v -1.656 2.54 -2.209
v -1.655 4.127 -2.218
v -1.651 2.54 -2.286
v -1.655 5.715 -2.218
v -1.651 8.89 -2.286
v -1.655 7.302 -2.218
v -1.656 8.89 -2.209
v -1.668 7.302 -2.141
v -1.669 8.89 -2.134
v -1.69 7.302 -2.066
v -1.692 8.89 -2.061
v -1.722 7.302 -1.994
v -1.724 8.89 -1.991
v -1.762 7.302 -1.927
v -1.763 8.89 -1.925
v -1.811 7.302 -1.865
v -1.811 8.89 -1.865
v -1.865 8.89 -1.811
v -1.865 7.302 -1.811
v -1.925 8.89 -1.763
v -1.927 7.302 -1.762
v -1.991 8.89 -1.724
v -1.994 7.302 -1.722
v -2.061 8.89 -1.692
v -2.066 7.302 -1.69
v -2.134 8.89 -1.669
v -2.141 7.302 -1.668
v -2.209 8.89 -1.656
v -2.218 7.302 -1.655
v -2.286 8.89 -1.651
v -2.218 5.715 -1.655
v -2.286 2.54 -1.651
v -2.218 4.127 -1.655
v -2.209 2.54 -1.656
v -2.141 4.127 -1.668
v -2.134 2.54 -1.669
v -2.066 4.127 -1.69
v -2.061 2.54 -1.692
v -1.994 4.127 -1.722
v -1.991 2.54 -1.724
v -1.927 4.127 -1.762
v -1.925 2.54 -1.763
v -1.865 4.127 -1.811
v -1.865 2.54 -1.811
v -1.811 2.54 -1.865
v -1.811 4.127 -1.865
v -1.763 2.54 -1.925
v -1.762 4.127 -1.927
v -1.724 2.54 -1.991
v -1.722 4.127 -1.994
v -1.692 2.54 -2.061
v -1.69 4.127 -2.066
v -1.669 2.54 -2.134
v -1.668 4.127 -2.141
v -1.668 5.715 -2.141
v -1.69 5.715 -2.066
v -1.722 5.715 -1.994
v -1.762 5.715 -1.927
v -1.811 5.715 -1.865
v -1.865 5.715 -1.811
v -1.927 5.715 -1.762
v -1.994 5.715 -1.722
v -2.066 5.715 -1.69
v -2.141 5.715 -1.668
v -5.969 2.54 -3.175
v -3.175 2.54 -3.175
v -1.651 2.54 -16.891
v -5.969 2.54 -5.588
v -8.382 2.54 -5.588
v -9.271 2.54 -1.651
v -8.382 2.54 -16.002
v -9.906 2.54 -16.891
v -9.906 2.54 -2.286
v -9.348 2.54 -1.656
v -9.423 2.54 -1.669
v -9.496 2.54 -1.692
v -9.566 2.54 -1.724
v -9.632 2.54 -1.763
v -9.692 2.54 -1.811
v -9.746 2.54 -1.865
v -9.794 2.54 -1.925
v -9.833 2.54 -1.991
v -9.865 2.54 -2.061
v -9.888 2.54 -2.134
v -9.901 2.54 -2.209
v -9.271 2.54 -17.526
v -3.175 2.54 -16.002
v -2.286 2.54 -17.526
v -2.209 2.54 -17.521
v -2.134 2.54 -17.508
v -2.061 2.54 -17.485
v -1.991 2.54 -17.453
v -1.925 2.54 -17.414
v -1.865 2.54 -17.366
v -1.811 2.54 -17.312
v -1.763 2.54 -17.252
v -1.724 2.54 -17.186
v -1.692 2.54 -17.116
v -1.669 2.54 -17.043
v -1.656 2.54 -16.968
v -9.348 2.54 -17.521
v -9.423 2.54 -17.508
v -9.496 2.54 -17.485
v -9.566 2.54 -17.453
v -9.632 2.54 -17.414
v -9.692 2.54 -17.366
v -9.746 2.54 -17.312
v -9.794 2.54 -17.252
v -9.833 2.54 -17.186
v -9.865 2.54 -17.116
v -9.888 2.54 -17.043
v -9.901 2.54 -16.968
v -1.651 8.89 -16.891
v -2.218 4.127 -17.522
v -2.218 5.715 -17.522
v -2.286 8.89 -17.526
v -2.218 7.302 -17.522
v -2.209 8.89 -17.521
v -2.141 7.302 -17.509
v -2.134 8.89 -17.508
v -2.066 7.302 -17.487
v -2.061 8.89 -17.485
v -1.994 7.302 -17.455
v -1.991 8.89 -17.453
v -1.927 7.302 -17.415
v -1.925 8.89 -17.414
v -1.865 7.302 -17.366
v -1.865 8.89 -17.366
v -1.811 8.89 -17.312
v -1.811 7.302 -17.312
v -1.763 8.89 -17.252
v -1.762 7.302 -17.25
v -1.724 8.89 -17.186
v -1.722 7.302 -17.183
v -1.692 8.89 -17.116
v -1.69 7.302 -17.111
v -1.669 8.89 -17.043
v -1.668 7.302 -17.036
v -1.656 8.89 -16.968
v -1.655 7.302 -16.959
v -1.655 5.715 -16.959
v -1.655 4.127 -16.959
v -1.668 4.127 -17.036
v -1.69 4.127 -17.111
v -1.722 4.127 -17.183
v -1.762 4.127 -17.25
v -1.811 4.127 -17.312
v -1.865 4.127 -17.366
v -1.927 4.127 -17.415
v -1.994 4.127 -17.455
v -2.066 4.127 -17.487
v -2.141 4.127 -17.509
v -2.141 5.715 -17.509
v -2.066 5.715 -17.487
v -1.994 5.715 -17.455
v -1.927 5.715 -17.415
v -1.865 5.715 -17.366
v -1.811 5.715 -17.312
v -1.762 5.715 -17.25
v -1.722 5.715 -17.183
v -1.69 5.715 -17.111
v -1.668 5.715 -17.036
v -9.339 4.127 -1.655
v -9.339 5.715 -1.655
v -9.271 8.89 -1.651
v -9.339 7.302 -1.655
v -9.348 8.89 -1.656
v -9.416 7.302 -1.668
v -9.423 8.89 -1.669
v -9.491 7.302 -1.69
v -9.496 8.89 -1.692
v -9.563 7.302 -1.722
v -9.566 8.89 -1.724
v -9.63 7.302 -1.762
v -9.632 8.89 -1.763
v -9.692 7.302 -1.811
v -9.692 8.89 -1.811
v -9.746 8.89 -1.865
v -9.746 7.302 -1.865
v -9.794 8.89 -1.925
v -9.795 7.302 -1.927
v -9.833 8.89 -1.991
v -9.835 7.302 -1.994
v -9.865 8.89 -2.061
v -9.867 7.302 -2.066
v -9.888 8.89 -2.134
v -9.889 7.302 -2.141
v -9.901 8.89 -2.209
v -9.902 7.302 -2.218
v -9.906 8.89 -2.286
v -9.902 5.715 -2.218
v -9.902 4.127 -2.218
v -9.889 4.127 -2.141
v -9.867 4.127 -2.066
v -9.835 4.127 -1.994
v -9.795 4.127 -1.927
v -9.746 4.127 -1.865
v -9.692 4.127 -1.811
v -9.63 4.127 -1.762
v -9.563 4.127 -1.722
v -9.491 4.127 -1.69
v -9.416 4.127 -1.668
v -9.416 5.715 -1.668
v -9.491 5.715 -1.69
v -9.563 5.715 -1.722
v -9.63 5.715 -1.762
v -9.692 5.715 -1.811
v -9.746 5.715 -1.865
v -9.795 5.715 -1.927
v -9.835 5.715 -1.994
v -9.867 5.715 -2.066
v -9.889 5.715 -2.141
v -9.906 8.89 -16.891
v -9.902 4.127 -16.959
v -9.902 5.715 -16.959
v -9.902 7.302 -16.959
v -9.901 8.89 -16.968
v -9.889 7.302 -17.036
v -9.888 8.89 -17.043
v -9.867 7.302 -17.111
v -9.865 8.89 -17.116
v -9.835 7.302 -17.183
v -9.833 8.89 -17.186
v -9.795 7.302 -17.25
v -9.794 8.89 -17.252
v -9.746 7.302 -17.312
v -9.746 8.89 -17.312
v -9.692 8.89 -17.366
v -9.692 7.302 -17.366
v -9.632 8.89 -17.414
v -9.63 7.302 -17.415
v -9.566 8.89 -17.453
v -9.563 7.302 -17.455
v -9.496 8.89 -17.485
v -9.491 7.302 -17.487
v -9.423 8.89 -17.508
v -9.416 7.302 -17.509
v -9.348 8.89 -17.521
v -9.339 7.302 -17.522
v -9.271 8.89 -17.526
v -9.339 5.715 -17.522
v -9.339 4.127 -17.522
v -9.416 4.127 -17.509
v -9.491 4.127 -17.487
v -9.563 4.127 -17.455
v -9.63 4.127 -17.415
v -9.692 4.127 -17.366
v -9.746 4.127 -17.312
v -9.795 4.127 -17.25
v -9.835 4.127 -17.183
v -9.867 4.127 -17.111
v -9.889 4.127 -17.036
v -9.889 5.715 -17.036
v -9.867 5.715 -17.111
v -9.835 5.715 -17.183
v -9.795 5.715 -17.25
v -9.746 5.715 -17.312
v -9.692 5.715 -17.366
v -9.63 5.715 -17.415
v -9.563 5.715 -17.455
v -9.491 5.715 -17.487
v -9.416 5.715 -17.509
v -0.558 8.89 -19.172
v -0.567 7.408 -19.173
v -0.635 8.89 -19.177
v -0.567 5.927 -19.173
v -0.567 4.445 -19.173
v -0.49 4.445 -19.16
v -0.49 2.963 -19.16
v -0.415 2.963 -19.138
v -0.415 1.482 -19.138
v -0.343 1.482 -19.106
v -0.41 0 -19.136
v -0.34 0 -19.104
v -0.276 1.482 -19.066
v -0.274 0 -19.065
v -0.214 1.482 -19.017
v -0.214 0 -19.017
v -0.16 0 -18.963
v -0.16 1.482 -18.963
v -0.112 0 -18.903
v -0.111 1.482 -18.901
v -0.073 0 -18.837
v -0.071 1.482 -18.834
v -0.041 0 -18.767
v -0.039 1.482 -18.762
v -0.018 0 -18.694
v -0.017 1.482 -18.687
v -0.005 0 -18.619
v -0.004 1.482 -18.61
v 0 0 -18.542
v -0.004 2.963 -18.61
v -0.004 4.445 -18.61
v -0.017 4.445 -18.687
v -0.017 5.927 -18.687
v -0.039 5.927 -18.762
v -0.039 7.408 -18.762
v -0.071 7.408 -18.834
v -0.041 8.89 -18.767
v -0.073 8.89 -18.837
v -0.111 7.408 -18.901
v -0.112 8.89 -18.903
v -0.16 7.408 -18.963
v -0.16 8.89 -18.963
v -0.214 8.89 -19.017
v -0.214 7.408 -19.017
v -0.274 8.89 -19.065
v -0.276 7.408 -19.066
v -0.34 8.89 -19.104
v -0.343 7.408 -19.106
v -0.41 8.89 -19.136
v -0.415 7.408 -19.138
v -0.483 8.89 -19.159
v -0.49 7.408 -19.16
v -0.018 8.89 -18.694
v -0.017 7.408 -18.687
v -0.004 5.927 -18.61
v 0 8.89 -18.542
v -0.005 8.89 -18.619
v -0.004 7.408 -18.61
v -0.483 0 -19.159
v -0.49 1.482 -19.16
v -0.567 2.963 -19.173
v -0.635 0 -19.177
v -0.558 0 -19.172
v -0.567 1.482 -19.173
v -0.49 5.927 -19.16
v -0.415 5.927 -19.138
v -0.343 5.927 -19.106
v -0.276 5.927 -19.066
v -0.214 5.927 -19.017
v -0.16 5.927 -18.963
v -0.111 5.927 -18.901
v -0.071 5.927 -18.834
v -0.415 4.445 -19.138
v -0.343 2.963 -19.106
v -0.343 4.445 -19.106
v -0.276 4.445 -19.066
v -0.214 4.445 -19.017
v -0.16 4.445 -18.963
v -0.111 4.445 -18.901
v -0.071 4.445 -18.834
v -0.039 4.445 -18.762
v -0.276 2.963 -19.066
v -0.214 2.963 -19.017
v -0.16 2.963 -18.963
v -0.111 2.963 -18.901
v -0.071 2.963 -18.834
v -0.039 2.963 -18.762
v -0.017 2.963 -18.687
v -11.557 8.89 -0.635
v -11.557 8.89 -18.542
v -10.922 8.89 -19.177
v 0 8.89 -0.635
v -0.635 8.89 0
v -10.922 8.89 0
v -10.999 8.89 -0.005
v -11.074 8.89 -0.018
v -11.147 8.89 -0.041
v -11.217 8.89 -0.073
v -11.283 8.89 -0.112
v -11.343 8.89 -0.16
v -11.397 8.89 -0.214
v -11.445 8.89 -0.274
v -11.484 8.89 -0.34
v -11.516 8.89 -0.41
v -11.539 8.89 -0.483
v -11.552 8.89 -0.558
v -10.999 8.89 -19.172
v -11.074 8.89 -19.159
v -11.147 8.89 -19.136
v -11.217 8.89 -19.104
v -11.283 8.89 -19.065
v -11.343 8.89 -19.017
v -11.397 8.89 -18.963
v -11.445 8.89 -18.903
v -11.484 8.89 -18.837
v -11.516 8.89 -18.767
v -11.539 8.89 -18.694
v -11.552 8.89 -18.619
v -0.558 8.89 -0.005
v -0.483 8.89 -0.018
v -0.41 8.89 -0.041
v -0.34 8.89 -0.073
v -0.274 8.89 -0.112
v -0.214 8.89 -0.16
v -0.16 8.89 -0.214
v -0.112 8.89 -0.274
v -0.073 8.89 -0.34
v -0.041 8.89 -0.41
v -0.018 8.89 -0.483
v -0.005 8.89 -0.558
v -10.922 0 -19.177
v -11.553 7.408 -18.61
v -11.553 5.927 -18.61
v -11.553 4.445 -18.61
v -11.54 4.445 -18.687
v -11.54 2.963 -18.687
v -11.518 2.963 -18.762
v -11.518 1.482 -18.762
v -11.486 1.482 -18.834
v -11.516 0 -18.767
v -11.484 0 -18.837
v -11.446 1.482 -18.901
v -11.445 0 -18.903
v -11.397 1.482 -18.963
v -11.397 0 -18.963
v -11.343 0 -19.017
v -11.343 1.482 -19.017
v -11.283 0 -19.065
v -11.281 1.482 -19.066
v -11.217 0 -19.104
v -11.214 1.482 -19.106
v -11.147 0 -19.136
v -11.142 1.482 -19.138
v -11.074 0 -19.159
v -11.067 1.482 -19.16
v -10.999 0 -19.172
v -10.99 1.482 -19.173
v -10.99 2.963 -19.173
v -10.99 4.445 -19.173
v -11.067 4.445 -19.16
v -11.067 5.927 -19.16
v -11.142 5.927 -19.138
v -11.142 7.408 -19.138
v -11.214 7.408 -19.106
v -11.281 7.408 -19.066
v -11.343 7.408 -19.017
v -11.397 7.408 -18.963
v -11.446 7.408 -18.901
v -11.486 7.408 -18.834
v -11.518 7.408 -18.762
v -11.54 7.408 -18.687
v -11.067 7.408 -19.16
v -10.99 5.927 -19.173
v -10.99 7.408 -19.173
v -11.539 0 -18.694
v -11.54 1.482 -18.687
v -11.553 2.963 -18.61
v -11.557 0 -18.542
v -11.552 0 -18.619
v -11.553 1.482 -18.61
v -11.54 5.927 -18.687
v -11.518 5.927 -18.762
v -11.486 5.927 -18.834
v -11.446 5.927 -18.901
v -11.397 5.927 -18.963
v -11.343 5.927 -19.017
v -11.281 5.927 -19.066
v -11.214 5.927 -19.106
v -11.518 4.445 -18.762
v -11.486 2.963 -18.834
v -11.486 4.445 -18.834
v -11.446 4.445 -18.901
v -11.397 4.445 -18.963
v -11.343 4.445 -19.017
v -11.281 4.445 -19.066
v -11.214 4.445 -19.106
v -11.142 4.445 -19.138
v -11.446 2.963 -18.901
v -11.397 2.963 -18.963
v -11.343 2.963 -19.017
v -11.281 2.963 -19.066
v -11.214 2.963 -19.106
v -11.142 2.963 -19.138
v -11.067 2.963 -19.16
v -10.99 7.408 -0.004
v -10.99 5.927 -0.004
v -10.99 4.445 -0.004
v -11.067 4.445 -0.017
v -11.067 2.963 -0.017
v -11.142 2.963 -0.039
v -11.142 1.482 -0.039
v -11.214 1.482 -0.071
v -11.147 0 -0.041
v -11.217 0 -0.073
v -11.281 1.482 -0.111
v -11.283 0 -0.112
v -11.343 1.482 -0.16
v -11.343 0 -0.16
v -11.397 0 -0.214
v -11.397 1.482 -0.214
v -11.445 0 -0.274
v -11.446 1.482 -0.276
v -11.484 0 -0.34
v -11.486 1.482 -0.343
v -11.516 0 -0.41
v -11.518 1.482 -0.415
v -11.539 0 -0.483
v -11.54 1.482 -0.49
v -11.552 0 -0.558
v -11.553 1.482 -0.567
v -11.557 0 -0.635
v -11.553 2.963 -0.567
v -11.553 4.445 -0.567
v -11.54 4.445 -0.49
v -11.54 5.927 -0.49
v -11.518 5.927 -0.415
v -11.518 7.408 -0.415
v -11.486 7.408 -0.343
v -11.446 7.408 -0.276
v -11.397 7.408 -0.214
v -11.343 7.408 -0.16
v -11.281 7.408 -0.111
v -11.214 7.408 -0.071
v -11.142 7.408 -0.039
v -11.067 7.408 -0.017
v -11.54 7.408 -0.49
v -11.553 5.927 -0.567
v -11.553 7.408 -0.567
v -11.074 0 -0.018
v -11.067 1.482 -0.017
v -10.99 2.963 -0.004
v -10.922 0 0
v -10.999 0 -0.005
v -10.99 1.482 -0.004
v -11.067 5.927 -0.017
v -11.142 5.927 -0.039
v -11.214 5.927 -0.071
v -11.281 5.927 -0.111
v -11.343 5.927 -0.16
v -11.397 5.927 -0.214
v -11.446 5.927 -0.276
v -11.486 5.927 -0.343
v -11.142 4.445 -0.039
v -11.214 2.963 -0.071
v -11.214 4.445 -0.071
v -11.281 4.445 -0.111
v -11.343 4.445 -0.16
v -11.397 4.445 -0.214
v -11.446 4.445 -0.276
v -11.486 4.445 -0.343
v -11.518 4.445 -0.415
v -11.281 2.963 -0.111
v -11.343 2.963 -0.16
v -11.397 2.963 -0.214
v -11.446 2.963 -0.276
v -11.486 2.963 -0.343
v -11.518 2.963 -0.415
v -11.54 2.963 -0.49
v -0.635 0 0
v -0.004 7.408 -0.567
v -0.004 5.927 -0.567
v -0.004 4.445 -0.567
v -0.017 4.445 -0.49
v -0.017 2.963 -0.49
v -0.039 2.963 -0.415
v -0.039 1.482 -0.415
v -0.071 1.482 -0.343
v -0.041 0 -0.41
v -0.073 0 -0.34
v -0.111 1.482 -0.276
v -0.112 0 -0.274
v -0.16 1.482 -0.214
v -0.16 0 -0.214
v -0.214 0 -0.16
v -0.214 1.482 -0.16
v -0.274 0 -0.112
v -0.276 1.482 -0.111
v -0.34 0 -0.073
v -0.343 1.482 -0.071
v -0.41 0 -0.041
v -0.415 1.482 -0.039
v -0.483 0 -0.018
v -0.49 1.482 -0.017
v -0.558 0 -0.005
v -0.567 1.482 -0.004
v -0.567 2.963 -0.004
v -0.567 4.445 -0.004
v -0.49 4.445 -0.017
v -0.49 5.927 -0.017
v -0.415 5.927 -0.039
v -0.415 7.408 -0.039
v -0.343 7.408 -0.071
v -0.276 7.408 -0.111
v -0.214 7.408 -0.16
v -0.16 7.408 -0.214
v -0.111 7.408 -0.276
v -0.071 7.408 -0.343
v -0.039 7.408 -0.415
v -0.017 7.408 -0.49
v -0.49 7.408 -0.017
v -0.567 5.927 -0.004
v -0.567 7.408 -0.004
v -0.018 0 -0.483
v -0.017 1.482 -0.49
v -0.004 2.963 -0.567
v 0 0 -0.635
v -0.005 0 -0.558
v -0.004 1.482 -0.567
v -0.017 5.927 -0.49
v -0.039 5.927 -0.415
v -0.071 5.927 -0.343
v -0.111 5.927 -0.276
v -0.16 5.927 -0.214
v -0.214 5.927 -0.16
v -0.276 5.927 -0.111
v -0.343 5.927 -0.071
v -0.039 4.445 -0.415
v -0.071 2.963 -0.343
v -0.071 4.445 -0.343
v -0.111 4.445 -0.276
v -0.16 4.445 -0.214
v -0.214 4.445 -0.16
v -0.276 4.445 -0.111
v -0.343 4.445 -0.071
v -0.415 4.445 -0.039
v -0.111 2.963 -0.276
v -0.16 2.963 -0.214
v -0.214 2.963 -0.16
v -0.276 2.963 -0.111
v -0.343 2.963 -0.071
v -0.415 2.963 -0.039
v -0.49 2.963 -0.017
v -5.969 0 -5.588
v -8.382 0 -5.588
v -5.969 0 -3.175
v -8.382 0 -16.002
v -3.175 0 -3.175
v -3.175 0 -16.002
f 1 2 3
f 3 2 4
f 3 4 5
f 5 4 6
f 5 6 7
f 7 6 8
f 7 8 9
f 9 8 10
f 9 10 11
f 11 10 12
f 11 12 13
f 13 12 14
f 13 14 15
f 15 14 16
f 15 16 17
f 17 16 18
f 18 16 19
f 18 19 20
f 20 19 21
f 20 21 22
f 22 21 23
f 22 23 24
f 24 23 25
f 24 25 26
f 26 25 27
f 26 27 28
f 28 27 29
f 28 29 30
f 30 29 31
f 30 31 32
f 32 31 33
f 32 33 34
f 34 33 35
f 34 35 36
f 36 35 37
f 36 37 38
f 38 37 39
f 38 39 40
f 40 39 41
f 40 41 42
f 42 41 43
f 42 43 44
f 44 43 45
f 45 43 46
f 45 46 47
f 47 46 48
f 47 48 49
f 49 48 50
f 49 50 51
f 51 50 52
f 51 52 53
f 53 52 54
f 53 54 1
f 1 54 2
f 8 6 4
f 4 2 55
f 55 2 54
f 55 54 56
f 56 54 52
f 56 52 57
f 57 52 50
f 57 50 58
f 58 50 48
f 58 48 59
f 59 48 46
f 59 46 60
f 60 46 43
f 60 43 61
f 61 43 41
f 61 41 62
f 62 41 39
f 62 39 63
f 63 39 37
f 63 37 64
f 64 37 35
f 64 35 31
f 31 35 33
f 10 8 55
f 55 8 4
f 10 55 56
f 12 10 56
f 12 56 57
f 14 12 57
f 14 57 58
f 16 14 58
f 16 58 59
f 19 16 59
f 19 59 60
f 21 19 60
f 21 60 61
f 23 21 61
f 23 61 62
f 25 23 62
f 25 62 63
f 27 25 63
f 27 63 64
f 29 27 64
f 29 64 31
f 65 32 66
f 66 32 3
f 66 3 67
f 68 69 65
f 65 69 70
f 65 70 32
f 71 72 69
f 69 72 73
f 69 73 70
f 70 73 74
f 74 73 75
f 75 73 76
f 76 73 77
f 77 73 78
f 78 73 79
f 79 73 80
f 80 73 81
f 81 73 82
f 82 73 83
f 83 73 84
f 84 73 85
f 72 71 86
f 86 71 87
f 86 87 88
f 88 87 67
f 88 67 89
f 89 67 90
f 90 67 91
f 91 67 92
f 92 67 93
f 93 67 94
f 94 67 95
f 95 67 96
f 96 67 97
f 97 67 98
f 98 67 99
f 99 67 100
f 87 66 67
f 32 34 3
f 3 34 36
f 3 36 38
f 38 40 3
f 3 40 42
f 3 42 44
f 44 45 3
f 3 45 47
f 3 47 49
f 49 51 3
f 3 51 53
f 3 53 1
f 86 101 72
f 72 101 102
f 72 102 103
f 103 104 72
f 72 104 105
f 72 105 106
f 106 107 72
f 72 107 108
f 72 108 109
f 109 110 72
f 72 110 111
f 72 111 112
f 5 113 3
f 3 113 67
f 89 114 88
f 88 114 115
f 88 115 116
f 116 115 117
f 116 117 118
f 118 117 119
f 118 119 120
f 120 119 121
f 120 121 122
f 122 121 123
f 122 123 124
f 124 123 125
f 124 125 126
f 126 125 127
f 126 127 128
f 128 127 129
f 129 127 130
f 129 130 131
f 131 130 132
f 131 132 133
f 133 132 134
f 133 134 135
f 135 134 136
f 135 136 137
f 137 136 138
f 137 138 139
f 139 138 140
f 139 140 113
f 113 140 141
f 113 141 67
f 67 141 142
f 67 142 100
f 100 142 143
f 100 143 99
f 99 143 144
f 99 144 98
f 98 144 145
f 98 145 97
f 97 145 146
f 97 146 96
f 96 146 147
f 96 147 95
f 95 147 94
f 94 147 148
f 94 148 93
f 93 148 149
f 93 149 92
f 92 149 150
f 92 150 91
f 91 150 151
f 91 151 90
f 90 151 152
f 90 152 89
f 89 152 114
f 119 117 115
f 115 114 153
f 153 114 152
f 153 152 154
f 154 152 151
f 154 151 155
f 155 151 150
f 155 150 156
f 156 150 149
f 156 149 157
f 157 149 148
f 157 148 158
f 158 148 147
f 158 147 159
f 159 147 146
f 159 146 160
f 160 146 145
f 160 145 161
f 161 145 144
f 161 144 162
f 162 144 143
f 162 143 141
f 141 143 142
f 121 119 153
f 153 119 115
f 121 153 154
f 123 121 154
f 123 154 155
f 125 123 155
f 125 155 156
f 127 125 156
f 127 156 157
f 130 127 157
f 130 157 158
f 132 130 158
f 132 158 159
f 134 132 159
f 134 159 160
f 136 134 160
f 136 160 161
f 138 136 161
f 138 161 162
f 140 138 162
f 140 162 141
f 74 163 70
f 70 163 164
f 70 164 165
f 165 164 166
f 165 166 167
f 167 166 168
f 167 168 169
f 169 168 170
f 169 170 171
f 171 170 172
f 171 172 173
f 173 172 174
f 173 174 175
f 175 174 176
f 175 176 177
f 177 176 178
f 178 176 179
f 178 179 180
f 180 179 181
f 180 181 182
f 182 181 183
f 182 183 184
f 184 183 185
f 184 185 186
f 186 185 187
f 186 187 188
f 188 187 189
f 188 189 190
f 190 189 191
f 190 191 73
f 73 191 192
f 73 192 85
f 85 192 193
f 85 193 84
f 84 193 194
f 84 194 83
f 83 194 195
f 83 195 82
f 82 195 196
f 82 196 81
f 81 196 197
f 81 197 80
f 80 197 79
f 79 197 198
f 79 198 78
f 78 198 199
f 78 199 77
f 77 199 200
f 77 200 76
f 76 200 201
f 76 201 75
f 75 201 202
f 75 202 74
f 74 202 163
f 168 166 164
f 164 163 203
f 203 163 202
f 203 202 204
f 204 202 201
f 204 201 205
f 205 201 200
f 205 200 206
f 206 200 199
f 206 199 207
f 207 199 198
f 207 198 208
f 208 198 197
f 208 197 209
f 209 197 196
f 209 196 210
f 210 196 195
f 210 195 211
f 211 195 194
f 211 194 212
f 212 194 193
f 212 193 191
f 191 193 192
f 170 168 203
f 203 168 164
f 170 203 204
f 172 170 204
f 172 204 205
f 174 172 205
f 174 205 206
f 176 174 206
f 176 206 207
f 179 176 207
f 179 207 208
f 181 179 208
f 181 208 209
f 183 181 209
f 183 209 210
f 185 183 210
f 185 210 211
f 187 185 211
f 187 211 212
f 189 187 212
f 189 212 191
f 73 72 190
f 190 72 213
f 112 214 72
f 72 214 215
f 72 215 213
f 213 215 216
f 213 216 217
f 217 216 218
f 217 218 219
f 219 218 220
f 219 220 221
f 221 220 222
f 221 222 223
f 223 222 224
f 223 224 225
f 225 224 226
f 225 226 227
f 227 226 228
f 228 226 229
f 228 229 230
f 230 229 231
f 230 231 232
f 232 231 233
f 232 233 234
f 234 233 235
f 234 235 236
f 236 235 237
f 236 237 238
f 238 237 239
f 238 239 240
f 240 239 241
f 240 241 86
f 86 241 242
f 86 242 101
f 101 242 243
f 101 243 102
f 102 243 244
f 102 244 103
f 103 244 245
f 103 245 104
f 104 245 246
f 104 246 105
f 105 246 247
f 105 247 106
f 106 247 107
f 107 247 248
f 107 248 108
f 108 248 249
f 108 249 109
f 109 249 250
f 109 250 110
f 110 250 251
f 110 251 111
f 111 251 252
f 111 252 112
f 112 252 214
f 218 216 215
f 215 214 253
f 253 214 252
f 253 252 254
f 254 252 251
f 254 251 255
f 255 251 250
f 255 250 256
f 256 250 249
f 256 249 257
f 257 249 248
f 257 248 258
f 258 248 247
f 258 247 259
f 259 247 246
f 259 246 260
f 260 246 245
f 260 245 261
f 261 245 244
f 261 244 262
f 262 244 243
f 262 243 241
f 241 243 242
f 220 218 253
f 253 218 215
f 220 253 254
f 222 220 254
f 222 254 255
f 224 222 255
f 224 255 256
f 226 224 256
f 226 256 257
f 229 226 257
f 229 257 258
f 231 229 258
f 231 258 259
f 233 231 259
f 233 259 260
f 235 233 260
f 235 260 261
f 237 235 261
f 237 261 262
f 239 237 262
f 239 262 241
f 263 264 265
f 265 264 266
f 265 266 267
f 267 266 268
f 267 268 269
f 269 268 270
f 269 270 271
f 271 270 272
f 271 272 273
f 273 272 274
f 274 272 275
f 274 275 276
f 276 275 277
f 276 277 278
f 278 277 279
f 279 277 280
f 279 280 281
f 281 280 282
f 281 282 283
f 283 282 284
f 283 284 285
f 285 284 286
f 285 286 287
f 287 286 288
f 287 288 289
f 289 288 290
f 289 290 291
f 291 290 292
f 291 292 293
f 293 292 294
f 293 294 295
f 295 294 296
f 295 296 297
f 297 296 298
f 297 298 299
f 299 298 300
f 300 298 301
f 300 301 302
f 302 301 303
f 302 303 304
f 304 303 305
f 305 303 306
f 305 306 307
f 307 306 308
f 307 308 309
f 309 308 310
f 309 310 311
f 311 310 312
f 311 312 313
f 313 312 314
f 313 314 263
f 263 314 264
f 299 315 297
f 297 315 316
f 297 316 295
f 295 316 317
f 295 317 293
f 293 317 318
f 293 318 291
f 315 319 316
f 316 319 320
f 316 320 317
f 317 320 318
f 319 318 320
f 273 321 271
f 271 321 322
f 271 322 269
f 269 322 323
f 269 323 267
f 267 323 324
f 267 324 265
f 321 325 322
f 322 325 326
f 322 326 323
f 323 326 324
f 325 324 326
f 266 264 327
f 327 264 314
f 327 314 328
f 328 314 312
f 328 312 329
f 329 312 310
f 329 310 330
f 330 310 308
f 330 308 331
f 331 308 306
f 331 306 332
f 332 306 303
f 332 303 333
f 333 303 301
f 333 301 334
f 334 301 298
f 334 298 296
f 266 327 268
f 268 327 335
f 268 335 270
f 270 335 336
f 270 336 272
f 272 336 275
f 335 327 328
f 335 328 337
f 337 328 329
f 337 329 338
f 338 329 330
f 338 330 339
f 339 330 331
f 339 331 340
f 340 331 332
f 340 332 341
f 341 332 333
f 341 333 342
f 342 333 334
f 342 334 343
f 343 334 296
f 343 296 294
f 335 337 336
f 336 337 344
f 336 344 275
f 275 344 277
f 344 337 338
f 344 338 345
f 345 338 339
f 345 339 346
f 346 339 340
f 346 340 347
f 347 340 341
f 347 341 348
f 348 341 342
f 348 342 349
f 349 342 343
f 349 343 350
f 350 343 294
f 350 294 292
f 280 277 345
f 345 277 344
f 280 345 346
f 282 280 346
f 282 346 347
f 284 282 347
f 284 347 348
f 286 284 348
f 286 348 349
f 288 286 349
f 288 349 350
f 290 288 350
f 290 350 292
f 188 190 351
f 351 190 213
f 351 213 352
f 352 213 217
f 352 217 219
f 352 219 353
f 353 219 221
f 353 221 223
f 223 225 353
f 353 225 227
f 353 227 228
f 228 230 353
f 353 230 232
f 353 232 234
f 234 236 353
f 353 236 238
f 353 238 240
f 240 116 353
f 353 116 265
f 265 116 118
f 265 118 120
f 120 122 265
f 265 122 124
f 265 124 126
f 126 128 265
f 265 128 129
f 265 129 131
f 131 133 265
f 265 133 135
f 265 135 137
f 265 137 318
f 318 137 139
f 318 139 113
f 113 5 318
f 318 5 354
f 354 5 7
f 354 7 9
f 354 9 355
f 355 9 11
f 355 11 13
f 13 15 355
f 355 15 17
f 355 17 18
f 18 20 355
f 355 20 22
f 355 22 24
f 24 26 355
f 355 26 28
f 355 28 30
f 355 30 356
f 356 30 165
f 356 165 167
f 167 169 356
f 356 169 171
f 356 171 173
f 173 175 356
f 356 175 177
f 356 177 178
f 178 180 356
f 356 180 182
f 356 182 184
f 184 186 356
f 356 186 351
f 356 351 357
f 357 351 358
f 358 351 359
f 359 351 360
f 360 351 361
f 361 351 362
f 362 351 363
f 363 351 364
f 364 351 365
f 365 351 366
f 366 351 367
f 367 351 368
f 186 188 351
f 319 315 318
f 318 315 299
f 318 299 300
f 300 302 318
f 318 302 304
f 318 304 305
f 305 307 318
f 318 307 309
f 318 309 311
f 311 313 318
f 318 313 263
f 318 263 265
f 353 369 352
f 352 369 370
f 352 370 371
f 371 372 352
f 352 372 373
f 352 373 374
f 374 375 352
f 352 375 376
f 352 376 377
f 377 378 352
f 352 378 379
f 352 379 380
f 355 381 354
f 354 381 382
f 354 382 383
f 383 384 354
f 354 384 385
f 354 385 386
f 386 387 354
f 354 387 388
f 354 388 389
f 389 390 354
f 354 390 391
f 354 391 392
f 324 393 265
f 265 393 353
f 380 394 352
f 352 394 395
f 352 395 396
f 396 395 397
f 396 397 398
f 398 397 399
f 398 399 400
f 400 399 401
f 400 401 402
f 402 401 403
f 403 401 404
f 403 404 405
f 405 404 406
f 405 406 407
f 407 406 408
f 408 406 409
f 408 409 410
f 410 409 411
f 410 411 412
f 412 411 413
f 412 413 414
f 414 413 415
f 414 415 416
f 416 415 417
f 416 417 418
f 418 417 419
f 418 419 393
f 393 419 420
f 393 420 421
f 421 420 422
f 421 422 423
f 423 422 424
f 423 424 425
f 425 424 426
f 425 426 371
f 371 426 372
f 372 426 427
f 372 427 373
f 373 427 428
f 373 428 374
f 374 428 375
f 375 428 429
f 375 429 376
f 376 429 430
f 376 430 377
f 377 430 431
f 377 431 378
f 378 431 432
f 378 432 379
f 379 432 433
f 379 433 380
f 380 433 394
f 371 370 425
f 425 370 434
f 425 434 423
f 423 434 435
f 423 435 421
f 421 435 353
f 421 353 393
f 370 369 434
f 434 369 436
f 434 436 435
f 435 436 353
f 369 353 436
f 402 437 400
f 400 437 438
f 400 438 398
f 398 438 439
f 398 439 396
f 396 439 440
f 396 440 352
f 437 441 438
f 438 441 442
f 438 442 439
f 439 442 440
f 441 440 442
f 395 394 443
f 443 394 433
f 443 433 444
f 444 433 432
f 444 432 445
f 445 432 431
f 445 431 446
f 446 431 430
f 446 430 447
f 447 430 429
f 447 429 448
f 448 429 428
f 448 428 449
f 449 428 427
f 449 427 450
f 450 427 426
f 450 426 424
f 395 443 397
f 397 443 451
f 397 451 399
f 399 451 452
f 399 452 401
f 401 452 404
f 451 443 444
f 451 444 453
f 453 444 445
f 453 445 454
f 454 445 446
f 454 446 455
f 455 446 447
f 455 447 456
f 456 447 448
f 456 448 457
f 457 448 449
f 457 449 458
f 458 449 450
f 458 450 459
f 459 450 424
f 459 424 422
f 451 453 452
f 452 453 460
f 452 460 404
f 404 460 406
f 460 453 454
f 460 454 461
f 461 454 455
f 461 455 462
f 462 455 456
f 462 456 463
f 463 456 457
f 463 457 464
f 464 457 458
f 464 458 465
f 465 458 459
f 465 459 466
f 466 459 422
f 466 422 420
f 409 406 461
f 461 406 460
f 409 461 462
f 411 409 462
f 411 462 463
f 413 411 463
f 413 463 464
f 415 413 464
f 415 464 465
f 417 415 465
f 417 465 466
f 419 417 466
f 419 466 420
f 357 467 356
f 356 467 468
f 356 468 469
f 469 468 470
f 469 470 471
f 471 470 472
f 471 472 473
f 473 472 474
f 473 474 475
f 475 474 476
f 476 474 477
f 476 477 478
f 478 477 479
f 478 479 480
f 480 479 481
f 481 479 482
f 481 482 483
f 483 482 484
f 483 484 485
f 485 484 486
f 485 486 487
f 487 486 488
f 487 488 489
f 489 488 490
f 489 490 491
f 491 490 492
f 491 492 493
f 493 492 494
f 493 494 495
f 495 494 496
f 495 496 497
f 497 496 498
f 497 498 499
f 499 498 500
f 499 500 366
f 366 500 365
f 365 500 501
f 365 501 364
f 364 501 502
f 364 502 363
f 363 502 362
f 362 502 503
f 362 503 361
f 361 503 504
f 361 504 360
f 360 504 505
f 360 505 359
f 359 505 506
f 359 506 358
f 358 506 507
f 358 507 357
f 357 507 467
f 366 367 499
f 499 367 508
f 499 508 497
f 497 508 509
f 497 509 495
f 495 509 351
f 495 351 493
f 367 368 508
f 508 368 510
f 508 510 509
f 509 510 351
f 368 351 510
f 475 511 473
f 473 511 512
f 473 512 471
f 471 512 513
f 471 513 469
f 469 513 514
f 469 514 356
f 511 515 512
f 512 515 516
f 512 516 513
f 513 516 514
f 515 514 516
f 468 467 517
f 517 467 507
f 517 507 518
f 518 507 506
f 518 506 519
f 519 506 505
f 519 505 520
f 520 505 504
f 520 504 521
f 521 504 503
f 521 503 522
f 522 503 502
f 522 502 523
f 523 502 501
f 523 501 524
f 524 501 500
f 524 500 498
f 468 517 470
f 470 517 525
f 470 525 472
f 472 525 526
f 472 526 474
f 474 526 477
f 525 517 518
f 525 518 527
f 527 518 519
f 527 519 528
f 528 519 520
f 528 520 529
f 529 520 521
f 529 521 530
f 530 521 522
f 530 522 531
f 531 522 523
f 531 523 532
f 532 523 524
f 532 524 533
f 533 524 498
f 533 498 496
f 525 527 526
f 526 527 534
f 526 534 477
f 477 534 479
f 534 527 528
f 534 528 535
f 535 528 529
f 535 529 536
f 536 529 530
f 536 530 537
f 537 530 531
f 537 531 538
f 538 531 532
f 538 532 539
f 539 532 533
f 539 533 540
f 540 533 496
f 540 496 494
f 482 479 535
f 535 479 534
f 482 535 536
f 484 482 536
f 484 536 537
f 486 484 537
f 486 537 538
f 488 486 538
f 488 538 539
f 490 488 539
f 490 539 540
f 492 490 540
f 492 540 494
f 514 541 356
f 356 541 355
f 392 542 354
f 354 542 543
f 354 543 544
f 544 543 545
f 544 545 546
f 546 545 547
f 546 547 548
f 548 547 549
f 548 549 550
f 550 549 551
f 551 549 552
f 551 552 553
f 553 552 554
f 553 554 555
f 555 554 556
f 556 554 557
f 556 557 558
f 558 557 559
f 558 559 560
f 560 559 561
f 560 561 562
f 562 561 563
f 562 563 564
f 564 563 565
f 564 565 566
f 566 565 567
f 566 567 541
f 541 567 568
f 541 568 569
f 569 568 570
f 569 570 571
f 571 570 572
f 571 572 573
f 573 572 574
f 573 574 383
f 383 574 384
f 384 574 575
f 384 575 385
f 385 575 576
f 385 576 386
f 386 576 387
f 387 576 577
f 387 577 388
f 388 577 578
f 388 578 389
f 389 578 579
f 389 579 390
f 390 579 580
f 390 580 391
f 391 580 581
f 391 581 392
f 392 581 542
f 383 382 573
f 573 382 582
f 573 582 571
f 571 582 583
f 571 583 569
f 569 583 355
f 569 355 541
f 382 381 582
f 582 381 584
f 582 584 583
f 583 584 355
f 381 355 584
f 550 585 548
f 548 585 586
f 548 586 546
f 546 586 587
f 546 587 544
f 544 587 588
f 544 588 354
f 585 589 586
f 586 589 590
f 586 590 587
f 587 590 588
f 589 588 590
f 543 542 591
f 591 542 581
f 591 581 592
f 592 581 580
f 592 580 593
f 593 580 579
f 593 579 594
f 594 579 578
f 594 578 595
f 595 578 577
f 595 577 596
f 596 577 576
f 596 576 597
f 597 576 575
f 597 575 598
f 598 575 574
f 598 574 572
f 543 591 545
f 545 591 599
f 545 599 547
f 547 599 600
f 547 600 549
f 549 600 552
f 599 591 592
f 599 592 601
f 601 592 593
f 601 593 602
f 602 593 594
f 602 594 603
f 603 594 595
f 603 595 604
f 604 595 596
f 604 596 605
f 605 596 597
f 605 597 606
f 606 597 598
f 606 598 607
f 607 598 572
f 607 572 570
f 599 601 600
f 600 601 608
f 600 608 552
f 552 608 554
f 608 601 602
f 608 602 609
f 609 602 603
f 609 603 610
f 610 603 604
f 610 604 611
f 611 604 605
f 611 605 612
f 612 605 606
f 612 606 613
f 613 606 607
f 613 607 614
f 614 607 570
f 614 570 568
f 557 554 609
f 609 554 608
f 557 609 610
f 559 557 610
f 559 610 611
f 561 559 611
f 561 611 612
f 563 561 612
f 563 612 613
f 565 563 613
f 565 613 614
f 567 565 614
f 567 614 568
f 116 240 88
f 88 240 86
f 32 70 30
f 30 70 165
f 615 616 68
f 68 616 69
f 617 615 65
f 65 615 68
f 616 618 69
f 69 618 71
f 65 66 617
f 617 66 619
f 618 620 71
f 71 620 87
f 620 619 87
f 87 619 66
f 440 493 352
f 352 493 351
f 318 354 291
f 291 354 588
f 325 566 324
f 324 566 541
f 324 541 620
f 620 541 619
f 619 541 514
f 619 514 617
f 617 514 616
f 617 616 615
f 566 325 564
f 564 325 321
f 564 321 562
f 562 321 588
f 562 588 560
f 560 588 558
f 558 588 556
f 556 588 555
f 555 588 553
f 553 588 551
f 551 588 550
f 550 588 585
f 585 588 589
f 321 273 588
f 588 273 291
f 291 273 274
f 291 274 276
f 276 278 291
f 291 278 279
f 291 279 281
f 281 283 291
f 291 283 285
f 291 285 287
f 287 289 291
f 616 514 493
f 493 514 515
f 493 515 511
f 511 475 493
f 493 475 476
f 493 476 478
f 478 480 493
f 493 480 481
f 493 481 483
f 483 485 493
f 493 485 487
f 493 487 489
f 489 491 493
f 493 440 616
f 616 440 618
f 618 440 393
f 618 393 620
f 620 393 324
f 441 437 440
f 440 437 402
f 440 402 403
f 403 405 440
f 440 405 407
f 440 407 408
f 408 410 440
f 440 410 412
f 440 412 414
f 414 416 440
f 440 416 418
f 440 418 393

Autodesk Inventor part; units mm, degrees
ref_plane "YZ Plane" through (0, 0, 0) normal (1, 0, 0) x (0, 1, 0)
ref_plane "XZ Plane" through (0, 0, 0) normal (0, 1, 0) x (-1, 0, 0)
ref_plane "XY Plane" through (0, 0, 0) normal (0, 0, 1) x (1, 0, 0)
sketch "Sketch1" plane through (0, 0, 0) normal (0, 1, 0) x (-1, 0, 0)
  line L0 (0, 0) -> (11.557, 0)
  line L1 (11.557, 0) -> (11.557, -19.177)
  line L2 (11.557, -19.177) -> (0, -19.177)
  line L3 (0, -19.177) -> (0, 0)
  line L4 (3.175, -3.175) -> (8.382, -3.175)
  line L5 (8.382, -3.175) -> (8.382, -16.002)
  line L6 (8.382, -16.002) -> (3.175, -16.002)
  line L7 (3.175, -16.002) -> (3.175, -3.175)
  line L8 (8.382, -3.175) -> (5.969, -3.175)
  line L9 (5.969, -3.175) -> (5.969, -5.588)
  line L10 (5.969, -5.588) -> (8.382, -5.588)
  line L11 (8.382, -5.588) -> (8.382, -3.175)
  dimension "d0" = 12.827
  dimension "d1" = 5.207
  dimension "d2" = 3.175
  dimension "d3" = 3.175
  dimension "d4" = 3.175
  dimension "d5" = 3.175
  dimension "d6" = 2.413
  dimension "d7" = 2.413
extrude "Extrusion1" add sketch "Sketch1" along normal blind 2.54 contours L0 L1 L2 L3 | L4 L5 L10 L9
sketch "Sketch2" plane through (0, 2.54, 0) normal (0, 1, 0) x (1, 0, 0)
  line L0 (-8.382, 5.588) -> (-8.382, 16.002) construction
  line L1 (-8.382, 16.002) -> (-3.175, 16.002) construction
  line L2 (-3.175, 16.002) -> (-3.175, 3.175) construction
  line L3 (-3.175, 3.175) -> (-5.969, 3.175) construction
  line L4 (-5.969, 3.175) -> (-5.969, 5.588) construction
  line L5 (-5.969, 5.588) -> (-8.382, 5.588) construction
  line L6 (-11.557, 19.177) -> (-11.557, 0) projected
  line L7 (-11.557, 0) -> (0, 0) projected
  line L8 (0, 0) -> (0, 19.177) projected
  line L9 (0, 19.177) -> (-11.557, 19.177) projected
  line L10 (-9.906, 1.651) -> (-1.651, 1.651)
  line L11 (-1.651, 1.651) -> (-1.651, 17.526)
  line L12 (-1.651, 17.526) -> (-9.906, 17.526)
  line L13 (-9.906, 17.526) -> (-9.906, 1.651)
  dimension "d10" = 1.524
  dimension "d11" = 1.524
  dimension "d14" = 1.524
  dimension "d15" = 1.524
extrude "Extrusion2" add sketch "Sketch2" along normal blind 6.35
fillet "Fillet1" radius 0.635 8 edges at (0, 4.445, 0) (-11.557, 4.445, 0) (-11.557, 4.445, -19.177) (0, 4.445, -19.177) (-9.906, 5.715, -17.526) (-9.906, 5.715, -1.651) (-1.651, 5.715, -17.526) (-1.651, 5.715, -1.651)
equation "\"d3\" = d2"
equation "\"d4\" = d2"
equation "\"d5\" = d4"
equation "\"d11\" = d10"
equation "\"d14\" = d10"
equation "\"d15\" = d10"
properties part number "ForeConnectorHousing" material "ABS Plastic"
